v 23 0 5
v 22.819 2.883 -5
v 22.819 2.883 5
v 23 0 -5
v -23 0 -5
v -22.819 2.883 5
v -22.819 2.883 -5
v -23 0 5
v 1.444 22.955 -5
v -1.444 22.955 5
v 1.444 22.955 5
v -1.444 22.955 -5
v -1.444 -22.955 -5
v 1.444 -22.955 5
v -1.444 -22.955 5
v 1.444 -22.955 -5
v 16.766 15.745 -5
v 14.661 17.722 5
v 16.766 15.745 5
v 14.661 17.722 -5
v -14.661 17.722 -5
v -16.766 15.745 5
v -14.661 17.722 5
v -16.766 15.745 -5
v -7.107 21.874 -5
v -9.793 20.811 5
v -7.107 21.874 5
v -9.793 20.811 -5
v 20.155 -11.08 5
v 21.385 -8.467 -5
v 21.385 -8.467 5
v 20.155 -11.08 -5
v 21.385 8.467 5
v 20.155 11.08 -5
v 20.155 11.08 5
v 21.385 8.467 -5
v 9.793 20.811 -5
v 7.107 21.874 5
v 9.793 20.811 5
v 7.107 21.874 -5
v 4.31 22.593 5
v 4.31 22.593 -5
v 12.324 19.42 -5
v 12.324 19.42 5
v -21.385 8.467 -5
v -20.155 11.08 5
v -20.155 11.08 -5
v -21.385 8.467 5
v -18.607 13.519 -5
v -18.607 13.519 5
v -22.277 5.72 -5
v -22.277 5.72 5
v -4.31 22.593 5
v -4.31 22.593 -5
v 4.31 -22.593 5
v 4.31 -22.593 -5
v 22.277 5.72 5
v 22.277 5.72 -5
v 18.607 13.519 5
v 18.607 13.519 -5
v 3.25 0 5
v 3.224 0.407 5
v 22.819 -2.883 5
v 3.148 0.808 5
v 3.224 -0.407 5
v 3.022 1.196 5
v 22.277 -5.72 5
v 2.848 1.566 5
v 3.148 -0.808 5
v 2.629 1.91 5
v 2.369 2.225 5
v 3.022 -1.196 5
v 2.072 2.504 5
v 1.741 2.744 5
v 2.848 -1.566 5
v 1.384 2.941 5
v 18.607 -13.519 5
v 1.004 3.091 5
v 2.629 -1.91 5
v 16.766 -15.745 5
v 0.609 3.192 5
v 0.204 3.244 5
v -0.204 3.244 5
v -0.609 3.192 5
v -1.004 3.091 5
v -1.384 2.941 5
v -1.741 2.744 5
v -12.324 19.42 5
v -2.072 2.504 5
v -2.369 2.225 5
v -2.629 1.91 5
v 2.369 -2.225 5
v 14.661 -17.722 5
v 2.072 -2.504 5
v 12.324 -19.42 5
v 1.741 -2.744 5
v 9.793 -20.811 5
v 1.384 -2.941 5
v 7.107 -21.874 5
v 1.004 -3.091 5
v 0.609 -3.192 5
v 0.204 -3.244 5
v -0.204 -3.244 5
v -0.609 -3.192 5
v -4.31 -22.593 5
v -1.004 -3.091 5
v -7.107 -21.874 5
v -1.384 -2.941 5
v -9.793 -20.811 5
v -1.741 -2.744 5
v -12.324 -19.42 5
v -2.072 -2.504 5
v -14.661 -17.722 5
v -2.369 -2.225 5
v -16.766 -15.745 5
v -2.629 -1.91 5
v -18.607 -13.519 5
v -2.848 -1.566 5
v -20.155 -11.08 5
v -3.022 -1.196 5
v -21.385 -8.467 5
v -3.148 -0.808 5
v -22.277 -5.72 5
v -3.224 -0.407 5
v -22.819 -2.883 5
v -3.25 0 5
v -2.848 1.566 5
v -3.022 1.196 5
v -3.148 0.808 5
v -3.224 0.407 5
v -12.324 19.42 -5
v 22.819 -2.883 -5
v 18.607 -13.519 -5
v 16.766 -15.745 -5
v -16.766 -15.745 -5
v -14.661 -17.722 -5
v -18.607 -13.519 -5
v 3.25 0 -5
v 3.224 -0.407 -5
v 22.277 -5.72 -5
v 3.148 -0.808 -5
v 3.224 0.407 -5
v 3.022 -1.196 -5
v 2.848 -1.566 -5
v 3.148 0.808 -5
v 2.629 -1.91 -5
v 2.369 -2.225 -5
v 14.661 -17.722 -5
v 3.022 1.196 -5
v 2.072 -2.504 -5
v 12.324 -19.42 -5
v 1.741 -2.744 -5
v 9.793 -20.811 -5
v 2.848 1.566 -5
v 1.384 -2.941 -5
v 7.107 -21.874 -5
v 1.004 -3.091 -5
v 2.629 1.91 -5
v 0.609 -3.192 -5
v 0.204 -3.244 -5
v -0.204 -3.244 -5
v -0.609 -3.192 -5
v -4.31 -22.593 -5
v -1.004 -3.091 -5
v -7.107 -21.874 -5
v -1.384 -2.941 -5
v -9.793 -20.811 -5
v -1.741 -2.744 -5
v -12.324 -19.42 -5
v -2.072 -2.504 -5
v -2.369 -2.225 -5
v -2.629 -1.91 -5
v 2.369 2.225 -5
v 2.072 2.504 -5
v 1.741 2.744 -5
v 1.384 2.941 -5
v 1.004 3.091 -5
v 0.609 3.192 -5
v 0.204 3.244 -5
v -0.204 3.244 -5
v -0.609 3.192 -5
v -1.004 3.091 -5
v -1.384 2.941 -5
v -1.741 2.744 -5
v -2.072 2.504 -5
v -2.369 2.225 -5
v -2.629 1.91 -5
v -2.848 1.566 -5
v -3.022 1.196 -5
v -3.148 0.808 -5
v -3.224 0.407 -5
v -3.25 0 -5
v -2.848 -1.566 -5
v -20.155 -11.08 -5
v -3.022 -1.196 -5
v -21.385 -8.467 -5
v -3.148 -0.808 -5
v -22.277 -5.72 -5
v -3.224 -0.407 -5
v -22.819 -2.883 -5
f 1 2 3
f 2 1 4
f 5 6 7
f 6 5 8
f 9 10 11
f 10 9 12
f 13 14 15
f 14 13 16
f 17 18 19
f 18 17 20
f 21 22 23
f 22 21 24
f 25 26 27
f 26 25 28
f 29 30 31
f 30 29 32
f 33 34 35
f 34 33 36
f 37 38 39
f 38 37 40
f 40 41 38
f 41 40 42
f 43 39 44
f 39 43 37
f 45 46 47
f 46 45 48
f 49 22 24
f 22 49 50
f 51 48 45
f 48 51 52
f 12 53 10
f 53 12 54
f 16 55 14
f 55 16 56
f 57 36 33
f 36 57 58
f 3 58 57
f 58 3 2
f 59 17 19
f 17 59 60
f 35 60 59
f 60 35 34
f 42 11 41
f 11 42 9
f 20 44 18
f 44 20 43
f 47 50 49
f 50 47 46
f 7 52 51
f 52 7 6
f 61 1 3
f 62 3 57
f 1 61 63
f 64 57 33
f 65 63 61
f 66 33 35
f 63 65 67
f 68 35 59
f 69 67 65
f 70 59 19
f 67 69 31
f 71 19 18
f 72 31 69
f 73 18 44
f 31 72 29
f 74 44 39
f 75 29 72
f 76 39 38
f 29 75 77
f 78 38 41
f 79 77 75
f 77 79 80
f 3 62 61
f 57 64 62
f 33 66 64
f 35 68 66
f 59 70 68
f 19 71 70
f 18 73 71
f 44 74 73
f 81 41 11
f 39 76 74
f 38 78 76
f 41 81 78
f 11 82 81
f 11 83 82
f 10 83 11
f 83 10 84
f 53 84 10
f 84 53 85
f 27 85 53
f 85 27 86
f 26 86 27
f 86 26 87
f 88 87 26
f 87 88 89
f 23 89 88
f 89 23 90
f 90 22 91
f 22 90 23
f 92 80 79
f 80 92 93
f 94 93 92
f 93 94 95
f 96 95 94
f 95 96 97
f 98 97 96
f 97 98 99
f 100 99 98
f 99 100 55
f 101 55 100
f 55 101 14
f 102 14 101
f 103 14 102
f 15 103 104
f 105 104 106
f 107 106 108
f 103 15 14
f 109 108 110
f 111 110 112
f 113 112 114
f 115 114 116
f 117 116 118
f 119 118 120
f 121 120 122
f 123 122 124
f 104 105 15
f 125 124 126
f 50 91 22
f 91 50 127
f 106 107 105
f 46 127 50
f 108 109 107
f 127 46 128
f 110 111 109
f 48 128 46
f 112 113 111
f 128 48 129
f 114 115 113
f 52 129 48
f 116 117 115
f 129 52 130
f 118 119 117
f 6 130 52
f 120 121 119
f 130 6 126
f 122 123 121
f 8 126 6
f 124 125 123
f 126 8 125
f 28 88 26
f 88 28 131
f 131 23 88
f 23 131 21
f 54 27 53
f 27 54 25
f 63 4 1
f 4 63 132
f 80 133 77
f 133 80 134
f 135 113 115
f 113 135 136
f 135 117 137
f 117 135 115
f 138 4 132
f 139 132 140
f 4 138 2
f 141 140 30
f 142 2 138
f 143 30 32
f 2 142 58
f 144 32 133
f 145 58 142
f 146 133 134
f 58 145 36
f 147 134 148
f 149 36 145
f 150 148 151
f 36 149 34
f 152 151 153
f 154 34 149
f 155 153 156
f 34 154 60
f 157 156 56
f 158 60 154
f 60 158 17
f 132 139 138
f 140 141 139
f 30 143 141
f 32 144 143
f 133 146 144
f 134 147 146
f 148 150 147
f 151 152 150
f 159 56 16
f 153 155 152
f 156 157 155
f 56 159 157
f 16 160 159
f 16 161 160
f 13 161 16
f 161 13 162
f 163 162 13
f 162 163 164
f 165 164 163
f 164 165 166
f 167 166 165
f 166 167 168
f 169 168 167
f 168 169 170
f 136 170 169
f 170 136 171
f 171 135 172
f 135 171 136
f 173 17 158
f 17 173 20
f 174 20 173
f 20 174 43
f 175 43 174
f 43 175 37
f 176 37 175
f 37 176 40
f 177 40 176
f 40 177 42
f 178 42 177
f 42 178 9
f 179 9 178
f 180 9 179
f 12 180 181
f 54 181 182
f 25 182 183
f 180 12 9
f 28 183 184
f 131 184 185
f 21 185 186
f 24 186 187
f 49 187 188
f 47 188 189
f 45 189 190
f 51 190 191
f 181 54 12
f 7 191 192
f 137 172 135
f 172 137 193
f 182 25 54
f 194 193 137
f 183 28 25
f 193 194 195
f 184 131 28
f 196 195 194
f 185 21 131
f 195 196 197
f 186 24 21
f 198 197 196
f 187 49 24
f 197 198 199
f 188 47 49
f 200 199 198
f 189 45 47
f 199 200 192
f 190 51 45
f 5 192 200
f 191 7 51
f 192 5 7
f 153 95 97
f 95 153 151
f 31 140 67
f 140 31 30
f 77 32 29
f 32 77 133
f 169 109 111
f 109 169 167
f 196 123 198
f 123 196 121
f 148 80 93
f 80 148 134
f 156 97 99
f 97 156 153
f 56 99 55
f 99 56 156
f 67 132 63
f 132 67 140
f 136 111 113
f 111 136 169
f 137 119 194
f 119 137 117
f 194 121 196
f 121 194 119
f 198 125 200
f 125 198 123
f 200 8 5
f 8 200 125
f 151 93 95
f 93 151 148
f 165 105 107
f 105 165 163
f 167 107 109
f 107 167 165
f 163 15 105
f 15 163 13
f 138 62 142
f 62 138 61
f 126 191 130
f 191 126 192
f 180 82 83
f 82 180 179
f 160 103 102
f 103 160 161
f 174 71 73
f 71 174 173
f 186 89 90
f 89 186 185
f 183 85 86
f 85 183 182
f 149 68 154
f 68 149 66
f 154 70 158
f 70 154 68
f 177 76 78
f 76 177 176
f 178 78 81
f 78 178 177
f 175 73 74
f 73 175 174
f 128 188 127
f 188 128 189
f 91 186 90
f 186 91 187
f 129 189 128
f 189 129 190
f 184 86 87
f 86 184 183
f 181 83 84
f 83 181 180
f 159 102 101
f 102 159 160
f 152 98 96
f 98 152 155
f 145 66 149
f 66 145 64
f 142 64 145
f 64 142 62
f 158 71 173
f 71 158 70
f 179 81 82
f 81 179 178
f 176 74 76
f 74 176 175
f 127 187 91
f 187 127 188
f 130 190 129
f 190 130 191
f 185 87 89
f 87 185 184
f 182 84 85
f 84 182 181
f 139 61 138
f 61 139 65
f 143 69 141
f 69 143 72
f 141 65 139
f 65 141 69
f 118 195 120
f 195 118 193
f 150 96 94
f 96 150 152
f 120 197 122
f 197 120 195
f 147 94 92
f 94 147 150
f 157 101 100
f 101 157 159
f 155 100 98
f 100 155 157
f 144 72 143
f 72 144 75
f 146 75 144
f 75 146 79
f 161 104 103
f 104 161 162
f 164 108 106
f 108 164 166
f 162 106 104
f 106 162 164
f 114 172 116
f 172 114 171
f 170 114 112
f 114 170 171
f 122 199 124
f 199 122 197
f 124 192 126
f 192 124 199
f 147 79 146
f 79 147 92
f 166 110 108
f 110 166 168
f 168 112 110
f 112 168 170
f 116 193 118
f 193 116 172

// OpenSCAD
$fn = 50;


difference() {
	union() {
		translate(v = [0, 0, -5.0000000000]) {
			cylinder(h = 10, r = 23.0000000000);
		}
	}
	union() {
		translate(v = [0, 0, -100.0000000000]) {
			cylinder(h = 200, r = 3.2500000000);
		}
	}
}
